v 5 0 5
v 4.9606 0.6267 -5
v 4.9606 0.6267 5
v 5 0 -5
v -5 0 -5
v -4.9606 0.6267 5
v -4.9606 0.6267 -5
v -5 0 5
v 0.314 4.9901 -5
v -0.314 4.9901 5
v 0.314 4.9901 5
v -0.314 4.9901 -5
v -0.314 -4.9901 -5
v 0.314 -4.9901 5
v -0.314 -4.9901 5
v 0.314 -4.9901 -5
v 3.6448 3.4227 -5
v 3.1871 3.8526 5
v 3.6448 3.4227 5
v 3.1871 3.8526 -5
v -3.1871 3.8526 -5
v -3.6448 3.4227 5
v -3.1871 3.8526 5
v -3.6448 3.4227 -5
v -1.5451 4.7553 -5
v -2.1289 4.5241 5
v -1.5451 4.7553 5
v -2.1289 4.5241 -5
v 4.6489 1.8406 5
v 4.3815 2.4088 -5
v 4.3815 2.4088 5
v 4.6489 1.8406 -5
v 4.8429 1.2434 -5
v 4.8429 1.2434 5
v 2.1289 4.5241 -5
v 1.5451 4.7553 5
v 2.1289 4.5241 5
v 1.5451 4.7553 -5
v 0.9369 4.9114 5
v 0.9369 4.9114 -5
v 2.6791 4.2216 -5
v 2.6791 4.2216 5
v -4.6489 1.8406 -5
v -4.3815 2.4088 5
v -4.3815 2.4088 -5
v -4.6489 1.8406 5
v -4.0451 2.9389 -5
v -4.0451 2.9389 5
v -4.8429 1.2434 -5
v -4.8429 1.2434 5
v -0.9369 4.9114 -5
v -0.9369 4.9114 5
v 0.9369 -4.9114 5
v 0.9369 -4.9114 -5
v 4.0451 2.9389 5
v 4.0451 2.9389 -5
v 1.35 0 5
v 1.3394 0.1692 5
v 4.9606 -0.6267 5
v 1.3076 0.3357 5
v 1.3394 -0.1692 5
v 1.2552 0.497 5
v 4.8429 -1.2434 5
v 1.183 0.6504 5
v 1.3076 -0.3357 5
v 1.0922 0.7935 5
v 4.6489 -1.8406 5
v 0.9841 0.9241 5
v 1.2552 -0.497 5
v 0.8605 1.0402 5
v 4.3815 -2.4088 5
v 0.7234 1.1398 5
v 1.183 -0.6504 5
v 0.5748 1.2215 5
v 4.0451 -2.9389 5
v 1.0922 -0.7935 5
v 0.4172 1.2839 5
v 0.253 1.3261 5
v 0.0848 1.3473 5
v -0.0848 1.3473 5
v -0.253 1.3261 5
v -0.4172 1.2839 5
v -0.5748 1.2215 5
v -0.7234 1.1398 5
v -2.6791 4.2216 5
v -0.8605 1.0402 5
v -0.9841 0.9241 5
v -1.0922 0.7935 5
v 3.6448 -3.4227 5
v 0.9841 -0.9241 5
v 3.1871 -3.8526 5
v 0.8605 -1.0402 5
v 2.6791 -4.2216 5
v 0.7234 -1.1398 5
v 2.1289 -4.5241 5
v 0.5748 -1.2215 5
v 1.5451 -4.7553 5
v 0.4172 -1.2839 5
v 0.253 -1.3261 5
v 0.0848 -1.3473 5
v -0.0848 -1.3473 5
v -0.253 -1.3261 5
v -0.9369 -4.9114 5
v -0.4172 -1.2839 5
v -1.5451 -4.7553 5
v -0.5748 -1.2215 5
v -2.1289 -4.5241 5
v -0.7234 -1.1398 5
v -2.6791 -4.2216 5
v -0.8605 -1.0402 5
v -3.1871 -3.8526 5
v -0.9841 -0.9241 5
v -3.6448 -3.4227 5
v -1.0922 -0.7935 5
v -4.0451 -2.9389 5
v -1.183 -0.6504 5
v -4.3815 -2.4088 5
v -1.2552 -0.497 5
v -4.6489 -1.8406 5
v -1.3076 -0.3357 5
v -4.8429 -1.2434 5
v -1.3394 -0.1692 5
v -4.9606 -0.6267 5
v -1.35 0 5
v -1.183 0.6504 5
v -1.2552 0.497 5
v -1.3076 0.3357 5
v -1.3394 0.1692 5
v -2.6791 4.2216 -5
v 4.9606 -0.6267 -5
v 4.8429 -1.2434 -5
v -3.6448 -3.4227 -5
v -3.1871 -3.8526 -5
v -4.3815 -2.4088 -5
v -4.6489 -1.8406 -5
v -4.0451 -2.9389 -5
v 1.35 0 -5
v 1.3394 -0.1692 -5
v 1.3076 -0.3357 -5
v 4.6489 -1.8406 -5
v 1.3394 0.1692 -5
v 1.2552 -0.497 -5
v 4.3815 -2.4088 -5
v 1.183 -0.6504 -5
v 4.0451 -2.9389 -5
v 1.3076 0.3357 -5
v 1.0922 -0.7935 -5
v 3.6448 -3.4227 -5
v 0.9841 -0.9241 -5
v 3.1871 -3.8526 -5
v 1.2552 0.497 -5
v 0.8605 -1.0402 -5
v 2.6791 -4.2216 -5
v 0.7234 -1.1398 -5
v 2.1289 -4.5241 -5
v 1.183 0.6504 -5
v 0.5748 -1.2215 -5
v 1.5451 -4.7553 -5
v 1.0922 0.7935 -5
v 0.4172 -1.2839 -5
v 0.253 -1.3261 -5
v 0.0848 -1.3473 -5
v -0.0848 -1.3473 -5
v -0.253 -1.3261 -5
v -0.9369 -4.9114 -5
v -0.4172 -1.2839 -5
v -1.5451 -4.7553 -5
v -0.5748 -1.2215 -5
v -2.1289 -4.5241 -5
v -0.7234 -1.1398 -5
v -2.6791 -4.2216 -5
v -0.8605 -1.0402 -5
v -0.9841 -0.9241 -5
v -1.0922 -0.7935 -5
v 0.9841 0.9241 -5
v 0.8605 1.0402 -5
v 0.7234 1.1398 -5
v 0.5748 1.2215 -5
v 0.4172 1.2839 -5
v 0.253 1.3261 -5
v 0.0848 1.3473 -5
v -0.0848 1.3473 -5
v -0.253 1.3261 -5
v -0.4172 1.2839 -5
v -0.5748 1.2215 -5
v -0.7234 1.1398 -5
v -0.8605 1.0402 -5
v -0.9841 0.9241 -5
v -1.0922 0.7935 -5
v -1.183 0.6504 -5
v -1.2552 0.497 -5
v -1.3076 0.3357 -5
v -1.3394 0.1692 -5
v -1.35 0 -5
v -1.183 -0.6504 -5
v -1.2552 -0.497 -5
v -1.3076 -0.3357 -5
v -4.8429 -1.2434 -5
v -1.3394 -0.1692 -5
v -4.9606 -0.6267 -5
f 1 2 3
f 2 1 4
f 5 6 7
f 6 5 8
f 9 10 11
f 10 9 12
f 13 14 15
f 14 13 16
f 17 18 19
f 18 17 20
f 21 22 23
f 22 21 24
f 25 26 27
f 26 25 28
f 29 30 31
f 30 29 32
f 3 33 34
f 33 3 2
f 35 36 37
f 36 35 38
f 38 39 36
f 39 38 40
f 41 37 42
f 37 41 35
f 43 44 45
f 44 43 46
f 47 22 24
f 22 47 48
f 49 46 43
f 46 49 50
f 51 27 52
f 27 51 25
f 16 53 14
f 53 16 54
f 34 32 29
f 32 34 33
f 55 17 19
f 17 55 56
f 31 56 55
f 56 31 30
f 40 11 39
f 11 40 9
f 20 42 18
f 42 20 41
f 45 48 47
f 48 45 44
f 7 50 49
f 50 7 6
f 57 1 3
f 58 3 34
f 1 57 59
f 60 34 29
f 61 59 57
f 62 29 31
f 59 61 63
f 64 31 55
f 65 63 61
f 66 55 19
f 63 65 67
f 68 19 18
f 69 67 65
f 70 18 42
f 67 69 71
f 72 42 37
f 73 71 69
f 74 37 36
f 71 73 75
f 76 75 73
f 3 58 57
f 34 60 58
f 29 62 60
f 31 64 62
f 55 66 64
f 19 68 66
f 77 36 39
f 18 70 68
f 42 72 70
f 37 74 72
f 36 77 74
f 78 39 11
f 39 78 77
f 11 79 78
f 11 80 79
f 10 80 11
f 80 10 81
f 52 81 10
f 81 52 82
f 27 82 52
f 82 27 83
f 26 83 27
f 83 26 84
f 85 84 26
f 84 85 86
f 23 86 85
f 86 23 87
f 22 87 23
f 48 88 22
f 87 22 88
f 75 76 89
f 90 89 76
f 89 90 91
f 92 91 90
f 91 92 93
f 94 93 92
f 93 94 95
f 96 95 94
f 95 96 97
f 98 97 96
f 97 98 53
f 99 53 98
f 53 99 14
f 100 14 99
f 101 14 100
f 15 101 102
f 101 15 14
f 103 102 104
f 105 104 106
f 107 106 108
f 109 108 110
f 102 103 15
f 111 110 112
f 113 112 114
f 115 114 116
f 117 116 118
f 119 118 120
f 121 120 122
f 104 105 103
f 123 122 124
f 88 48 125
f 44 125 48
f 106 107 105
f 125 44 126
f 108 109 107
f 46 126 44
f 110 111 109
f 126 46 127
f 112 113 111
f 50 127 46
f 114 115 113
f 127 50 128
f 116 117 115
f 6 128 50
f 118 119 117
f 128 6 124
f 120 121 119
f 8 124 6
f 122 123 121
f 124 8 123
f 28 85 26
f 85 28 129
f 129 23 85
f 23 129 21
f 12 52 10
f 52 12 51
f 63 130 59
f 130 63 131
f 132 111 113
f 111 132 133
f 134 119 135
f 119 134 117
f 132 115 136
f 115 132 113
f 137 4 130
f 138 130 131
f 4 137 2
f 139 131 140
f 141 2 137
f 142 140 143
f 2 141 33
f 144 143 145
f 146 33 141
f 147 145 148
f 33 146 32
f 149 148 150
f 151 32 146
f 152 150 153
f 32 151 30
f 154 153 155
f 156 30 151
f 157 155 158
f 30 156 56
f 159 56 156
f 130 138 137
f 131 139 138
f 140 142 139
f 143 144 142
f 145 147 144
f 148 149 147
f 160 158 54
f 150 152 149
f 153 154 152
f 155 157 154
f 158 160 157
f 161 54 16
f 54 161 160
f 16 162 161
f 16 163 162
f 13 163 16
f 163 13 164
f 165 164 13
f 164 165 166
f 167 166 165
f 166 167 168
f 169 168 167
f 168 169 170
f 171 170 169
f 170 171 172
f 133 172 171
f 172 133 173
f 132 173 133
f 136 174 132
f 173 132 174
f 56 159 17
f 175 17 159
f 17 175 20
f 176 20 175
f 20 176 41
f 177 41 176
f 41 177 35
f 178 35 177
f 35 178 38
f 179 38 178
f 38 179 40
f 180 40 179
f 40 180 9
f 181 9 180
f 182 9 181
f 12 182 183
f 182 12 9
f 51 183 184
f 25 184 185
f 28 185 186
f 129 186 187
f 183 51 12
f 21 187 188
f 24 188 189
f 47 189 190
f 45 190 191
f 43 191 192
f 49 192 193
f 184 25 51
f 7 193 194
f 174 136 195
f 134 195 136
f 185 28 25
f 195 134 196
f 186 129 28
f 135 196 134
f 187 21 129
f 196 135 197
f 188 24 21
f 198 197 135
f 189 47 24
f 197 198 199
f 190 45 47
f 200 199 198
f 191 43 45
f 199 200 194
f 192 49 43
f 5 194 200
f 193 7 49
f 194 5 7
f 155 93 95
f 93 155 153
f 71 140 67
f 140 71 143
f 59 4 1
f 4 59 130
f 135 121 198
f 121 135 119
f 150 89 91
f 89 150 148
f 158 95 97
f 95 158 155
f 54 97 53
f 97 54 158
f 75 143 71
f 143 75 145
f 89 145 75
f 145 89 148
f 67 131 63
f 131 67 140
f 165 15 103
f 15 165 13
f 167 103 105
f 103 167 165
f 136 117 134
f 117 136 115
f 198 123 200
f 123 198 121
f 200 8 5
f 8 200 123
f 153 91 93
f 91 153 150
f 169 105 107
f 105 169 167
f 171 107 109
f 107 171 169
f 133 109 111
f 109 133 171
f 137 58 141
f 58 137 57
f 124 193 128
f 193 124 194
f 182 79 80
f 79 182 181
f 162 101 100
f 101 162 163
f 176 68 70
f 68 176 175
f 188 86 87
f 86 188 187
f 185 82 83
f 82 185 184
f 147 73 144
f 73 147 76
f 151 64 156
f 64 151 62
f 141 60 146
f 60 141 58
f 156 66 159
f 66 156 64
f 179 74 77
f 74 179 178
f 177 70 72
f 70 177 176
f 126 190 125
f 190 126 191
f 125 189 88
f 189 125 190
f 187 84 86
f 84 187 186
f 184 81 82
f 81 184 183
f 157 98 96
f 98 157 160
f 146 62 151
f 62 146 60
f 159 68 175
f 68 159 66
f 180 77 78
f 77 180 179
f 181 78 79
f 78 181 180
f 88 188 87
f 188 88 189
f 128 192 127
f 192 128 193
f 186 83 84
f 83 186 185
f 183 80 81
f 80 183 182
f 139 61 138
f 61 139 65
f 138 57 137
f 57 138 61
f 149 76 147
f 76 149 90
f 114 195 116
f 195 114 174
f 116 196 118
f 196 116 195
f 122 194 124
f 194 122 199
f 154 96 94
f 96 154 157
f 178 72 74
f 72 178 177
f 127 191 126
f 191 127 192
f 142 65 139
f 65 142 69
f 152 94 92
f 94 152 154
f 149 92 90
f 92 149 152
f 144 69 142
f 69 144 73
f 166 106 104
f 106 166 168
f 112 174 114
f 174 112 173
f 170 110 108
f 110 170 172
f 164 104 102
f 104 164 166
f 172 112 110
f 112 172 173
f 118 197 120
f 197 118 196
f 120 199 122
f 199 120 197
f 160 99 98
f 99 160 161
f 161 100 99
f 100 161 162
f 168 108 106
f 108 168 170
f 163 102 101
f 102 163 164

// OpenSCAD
$fn = 50;


difference() {
	union() {
		translate(v = [0, 0, -5.0000000000]) {
			cylinder(h = 10, r = 5.0000000000);
		}
	}
	union() {
		translate(v = [0, 0, -100.0000000000]) {
			cylinder(h = 200, r = 1.3500000000);
		}
	}
}
